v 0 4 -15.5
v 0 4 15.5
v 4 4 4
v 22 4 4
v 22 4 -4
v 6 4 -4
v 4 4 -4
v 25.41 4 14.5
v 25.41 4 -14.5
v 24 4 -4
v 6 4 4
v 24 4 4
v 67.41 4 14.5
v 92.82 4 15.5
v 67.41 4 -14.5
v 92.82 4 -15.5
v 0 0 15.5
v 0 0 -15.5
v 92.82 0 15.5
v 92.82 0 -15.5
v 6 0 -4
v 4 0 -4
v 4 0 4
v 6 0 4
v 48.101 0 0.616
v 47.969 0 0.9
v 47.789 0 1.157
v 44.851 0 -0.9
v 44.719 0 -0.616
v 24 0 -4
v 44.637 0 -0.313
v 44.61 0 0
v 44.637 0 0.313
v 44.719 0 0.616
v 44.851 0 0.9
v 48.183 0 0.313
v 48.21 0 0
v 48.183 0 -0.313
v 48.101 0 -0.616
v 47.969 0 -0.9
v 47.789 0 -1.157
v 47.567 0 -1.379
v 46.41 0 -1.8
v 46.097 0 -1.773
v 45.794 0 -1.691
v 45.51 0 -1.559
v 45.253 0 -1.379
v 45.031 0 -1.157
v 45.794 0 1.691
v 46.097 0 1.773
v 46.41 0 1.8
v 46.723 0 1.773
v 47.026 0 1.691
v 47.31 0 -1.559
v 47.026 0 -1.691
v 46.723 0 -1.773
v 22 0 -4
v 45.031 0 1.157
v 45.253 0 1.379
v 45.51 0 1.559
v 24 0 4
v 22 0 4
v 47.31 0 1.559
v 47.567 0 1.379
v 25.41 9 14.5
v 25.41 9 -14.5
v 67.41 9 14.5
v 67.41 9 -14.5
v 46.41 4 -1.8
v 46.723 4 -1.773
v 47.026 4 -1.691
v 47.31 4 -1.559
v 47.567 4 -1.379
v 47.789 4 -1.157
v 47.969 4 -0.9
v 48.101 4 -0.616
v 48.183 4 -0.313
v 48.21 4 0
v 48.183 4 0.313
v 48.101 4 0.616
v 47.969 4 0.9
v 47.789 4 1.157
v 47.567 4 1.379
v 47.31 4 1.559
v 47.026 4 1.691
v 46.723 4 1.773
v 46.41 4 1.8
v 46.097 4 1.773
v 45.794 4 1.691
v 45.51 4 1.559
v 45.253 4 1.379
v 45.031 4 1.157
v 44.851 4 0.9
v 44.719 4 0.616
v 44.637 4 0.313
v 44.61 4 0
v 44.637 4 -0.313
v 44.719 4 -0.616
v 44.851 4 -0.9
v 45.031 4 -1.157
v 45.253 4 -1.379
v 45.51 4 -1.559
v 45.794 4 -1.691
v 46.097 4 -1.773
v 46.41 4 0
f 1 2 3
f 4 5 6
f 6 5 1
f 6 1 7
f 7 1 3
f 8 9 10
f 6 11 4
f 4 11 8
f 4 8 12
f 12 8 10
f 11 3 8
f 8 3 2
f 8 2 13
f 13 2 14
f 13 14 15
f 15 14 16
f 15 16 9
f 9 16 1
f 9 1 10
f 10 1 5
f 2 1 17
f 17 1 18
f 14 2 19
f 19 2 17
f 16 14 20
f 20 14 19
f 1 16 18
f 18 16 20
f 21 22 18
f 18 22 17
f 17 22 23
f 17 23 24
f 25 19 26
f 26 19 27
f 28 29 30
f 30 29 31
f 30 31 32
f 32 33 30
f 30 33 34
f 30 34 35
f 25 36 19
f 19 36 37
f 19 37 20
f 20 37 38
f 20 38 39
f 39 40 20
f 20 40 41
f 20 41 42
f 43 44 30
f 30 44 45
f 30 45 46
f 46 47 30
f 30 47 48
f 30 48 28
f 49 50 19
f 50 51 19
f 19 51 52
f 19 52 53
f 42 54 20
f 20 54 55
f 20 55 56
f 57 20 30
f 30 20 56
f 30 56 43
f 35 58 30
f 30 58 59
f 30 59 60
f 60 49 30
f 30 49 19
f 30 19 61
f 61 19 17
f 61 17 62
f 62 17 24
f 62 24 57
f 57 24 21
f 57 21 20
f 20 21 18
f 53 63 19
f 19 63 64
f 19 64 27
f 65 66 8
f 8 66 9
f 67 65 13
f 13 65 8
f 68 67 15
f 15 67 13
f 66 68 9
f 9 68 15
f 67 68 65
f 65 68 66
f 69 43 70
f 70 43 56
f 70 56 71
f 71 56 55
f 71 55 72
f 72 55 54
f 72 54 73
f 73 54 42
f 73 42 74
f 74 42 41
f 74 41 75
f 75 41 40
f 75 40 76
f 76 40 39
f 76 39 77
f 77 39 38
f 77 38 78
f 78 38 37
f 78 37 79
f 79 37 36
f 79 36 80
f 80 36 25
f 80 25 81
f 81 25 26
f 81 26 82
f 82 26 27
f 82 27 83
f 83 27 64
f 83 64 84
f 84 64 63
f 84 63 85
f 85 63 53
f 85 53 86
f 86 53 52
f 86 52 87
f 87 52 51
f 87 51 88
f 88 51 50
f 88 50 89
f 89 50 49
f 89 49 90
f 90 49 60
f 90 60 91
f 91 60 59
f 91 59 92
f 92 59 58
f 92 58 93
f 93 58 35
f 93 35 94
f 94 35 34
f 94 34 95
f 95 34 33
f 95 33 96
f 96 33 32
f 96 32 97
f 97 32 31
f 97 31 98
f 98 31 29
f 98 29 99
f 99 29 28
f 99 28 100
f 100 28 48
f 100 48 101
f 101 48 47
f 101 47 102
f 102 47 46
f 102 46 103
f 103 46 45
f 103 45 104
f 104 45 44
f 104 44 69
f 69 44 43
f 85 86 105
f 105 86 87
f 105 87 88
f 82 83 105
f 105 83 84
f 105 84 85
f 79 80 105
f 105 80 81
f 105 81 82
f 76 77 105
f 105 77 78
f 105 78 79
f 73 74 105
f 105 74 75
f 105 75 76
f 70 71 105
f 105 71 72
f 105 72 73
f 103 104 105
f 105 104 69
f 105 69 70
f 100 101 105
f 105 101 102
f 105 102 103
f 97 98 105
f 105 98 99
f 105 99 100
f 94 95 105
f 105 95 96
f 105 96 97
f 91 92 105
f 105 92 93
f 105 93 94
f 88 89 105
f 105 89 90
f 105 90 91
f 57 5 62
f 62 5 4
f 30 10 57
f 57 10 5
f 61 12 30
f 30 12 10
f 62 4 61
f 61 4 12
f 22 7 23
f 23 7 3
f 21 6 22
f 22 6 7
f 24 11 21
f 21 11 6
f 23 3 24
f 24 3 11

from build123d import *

# Parameters (mm, degrees)
SK_BASE_W                  = 92.82
SK_BASE_H                  = 31
BASE_PLATE_DEPTH           = 4
SK_BLOCK_W                 = 42
SK_BLOCK_H                 = 29
CAMERA_BLOCK_DEPTH         = 5
SK_PINHOLE_R               = 1.8
SLIDE_PIN_HOLE_DEPTH       = 4
CABLE_TIE_SLOTS_DEPTH      = 95.534662426
CABLE_TIE_SLOTS_DEPTH_BACK = 95.534662426
SK_TIESLOTS_W              = 2
SK_TIESLOTS_H              = 8


with BuildPart() as part:
    # Sk_Base → Base Plate (new body)
    with BuildSketch(Plane(origin=(0, 0, 0), x_dir=(1, 0, 0), z_dir=(0, 1, 0))):
        with Locations((46.41, 0)):
            Rectangle(SK_BASE_W, SK_BASE_H)
    extrude(amount=BASE_PLATE_DEPTH)

    # Sk_Block → Camera Block (add)
    with BuildSketch(Plane(origin=(0, 4, 0), x_dir=(1, 0, 0), z_dir=(0, 1, 0))):
        with Locations((46.41, 0)):
            Rectangle(SK_BLOCK_W, SK_BLOCK_H)
    extrude(amount=CAMERA_BLOCK_DEPTH)

    # Sk_PinHole → Slide Pin Hole (cut)
    with BuildSketch(Plane(origin=(0, 0, 0), x_dir=(1, 0, 0), z_dir=(0, 1, 0))):
        with Locations(Location((46.41, 0, 0), (0, 0, 270))):
            Circle(SK_PINHOLE_R)
    extrude(amount=SLIDE_PIN_HOLE_DEPTH, mode=Mode.SUBTRACT)

    # Sk_TieSlots → Cable Tie Slots (cut, two sides: drawn at the far end of the back side and taken through both)
    with BuildSketch(Plane(origin=(0, 0, 0), x_dir=(1, 0, 0), z_dir=(0, 1, 0)).offset(-CABLE_TIE_SLOTS_DEPTH_BACK)):
        with Locations((5, 0)):
            Rectangle(SK_TIESLOTS_W, SK_TIESLOTS_H)
        with Locations((23, 0)):
            Rectangle(SK_TIESLOTS_W, SK_TIESLOTS_H)
    extrude(amount=CABLE_TIE_SLOTS_DEPTH + CABLE_TIE_SLOTS_DEPTH_BACK, mode=Mode.SUBTRACT)


solid = part.part
